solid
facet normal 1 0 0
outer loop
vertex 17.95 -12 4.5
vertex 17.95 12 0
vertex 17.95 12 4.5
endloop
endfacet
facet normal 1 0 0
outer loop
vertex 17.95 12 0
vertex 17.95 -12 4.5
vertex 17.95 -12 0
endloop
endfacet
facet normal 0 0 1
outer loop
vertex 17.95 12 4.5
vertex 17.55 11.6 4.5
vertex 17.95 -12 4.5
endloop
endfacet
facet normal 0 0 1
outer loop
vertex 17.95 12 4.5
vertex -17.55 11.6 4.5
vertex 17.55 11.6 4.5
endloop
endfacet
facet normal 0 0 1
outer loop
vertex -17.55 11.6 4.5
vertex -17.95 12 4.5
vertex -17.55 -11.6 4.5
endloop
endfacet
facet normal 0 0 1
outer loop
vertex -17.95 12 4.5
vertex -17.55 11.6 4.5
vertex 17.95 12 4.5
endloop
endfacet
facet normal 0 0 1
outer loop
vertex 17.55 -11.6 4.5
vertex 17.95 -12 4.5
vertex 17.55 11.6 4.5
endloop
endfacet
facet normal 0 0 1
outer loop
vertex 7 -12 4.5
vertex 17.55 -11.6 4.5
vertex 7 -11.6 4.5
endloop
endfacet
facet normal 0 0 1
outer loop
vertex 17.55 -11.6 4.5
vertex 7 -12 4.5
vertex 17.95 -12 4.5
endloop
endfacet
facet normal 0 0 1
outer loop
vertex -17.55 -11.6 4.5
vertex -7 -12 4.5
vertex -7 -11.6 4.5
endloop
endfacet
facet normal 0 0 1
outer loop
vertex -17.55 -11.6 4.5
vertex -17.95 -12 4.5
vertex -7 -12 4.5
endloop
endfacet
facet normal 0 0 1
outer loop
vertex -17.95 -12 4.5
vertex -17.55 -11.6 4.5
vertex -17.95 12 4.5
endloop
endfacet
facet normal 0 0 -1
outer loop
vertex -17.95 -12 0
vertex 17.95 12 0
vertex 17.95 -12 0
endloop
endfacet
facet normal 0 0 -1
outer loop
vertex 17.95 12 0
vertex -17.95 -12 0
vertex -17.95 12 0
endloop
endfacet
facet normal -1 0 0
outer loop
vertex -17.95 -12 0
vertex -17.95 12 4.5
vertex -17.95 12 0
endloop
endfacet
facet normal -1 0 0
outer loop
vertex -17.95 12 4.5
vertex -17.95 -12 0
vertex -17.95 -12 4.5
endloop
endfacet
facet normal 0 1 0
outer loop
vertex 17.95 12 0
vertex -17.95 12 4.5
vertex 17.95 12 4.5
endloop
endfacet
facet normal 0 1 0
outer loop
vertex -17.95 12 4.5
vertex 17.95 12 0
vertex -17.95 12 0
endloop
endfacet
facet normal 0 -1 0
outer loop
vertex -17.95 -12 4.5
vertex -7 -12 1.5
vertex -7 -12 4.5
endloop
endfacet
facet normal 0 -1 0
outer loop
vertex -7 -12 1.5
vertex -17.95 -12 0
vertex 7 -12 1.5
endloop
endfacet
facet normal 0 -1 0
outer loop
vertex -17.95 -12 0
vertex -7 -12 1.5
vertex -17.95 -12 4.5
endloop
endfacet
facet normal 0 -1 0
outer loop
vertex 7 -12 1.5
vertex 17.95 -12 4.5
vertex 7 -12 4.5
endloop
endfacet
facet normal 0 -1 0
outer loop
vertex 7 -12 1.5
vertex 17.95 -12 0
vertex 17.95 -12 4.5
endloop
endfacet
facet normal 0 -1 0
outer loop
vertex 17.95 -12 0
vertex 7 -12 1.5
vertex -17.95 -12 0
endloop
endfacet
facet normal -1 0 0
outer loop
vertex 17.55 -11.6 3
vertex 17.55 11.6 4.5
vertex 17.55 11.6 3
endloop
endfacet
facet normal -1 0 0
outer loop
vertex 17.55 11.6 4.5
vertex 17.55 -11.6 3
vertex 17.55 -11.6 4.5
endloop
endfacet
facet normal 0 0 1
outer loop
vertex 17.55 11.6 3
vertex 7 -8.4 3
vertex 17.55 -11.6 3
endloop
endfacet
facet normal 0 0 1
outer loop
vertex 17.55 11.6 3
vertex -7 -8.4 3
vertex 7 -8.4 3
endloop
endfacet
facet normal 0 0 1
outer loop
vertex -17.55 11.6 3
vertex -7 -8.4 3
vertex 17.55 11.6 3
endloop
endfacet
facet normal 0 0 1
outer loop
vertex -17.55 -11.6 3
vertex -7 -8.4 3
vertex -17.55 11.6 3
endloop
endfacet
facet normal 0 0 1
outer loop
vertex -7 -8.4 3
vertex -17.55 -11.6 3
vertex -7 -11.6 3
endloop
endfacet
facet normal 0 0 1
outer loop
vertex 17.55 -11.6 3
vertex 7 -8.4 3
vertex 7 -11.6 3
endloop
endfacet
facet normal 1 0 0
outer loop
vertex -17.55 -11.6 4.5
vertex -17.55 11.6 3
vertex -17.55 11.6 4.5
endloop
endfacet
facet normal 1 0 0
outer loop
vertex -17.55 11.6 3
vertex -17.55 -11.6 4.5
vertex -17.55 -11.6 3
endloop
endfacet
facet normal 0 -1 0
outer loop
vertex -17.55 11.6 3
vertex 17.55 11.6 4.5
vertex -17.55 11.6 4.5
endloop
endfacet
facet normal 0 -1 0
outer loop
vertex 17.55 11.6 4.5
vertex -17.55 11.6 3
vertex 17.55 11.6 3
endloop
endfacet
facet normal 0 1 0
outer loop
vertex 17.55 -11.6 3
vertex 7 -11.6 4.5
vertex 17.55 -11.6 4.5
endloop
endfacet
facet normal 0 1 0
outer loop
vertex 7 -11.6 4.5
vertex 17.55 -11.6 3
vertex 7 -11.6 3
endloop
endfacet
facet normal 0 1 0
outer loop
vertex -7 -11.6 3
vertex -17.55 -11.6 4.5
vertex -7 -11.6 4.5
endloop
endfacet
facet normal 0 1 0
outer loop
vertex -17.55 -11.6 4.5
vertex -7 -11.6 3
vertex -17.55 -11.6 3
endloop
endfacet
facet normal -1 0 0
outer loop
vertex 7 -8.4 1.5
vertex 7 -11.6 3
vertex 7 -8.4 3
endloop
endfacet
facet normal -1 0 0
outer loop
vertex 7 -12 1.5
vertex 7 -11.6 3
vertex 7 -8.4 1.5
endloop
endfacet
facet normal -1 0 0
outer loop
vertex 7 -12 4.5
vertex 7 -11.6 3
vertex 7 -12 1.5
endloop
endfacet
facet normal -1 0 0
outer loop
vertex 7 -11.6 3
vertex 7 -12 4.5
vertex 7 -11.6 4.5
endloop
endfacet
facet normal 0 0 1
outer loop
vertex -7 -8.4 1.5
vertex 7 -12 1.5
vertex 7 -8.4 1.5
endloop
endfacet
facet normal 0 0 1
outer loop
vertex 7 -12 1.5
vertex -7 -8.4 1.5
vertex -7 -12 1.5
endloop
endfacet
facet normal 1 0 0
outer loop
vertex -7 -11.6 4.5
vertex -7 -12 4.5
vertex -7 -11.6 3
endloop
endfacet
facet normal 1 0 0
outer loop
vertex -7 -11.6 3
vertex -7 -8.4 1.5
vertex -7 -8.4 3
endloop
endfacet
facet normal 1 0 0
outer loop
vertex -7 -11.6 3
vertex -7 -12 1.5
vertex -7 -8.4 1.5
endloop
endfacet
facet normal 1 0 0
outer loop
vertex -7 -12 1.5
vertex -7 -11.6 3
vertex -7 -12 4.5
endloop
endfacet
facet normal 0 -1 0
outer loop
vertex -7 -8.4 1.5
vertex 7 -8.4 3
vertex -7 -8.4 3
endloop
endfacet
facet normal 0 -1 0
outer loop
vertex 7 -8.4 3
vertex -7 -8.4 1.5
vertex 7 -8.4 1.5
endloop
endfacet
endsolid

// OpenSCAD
// LCD spacer


oled_x = 35.1;
oled_y = 23.2;
oled_z = 1.5;
oled_cable_width = 14;

wall = 0.4;
space = 3; // Mezera pod displayem


difference(){
translate([-oled_x/2-wall, -oled_y/2-wall, 0]) cube([oled_x+2*wall, oled_y+2*wall, space+oled_z]);

translate([-oled_x/2, -oled_y/2, space]) cube([oled_x, oled_y, oled_z+0.1]);

translate([-oled_cable_width/2, -oled_y/2-10, space-space/2]) cube([oled_cable_width, oled_y-10, 10]);

}
